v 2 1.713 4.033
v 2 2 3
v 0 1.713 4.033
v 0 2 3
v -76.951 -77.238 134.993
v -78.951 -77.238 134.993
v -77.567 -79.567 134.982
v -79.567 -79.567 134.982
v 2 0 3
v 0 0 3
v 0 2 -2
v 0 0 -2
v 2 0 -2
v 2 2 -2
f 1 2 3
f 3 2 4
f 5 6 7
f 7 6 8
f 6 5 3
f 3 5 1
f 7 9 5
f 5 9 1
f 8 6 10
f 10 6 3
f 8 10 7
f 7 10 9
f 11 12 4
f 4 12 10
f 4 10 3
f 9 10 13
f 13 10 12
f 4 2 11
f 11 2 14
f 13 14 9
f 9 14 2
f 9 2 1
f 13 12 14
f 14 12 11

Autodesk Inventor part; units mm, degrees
ref_plane "YZ Plane" through (0, 0, 0) normal (1, 0, 0) x (0, 1, 0)
sketch "Skizze1" plane through (0, 0, 0) normal (0, 0, 1) x (1, 0, 0)
  line L0 (0, 0) -> (2, 0)
  line L1 (2, 0) -> (2, 2)
  line L2 (2, 2) -> (0, 2)
  line L3 (0, 2) -> (0, 0)
  dimension "d0" = 2
  dimension "d1" = 2
extrude "Extrusion1" add sketch "Skizze1" along normal blind 3
sketch "Skizze2" plane through (0, 0, 3) normal (0, 0, 1) x (1, 0, 0)
  point P0 (0, 0)
ref_plane "Arbeitsebene1" through (0, 0, 3) normal (-0.7071068, 0.7071068, 0) x (0.7071068, 0.7071068, 0)
sketch "Skizze3" plane through (0, 0, 3) normal (-0.7071068, 0.7071068, 0) x (0.7071068, 0.7071068, 0)
  line L0 (0, 0) -> (1.4142, 0) projected
  line L1 (0, 0) -> (-112.5245, -131.9823)
  line L2 (0, 0) -> (173.439, 0) construction
  line L3 (2.8284, 3) -> (2.8284, 0) projected
  line L4 (2.8284, 0) -> (-109.6961, -131.9823)
  line L5 (2.8284, 0) -> (176.2674, 0) construction
  line L6 (-109.6961, -131.9823) -> (-112.5245, -131.9823)
  line L7 (1.4142, 0) -> (2.8284, 0) projected
  line L8 (2.8284, 0) -> (0, 0)
  point P0 (0, 3)
  dimension "d4" = 173.439
  dimension "d5" = 130.45
  dimension "d6" = 173.439
  dimension "d7" = 130.45
ref_plane "Arbeitsebene2" through (0, 0, 3) normal (0, 0.8564105, 0.5162955) x (-0.4587597, -0.4587597, 0.7609724)
sketch "Skizze4" plane through (0, 0, 3) normal (0, 0.8564105, 0.5162955) x (-0.4587597, -0.4587597, 0.7609724)
  line L0 (0, 0) -> (-0.9175, 1.7771) projected
  line L1 (0, 0) -> (-0.9175, 1.7771)
  line L2 (-0.9175, 1.7771) -> (172.5215, 1.7771)
  line L3 (172.5215, 1.7771) -> (173.439, 0)
  line L4 (173.439, 0) -> (0, 0)
  point P0 (-2.2829, -1.1787)
  dimension "d9" = 173.439
extrude "Extrusion2" add sketch "Skizze4" along normal blind 2
sketch "Skizze5" plane through (-77.5668, -79.5668, 134.9823) normal (0.8885604, -0.2368556, 0.3928866) x (0.4587597, 0.4587597, -0.7609724)
  line L0 (172.5215, 0) -> (-0.9175, 0) projected
  line L1 (0.0005, 0) -> (1.3553, 2)
  line L2 (0, 2) -> (173.439, 2) projected
  line L3 (1.3553, 2) -> (0, 2)
  line L4 (0, 0) -> (0, 2) projected
  line L5 (0, 2) -> (0, 0)
  point P0 (174.8044, -1.5489)
sketch "Skizze6" plane through (0, 0, 3) normal (0, -0.8564105, -0.5162955) x (0.8885604, -0.2368556, 0.3928866)
  line L0 (0, 0) -> (0, 173.439) projected
  line L1 (1.7771, 172.5215) -> (0, 173.439)
  point P0 (-1.1787, -2.2829)
sketch "Skizze7" plane through (0, 1.7128, 4.0326) normal (0, 0.8564105, 0.5162955) x (0.8885604, -0.2368556, 0.3928866)
  line L0 (0, 0) -> (0, -173.439) projected
  line L1 (0, -172.1027) -> (1.781, -171.1647)
  point P0 (-1.1787, 2.2829)
sketch "Skizze8" plane through (0, 0, 3) normal (-0.8885604, 0.2368556, -0.3928866) x (-0.4587597, -0.4587597, 0.7609724)
  line L0 (0, 2) -> (173.439, 2) projected
  line L1 (0, 0) -> (173.439, 0) projected
  line L2 (172.1026, 2) -> (173.439, 0)
  point P0 (-2.2829, -1.5489)
chamfer "Fase1" distance 1.1929 distance2 2 1 edges at (-78.5668, -77.854, 136.0149) measured on face at (-25.1889, -24.8095, 48.0267)
ref_plane "Arbeitsebene3" through (2, 0, 3) normal (-1, 0, 0) x (0, 0.8564105, 0.5162955)
sketch "Skizze12" plane through (2, 0, 3) normal (-1, 0, 0) x (0, 0.8564105, 0.5162955)
  line L0 (0, 0) -> (1.7128, 1.0326) projected
  line L1 (0, 0) -> (2, 0)
  line L2 (-1.5489, 2.5692) -> (0, 0) projected
  line L3 (0, 0) -> (1.7128, 1.0326)
  line L4 (2, 0) -> (1.7128, 1.0326)
extrude "Extrusion6" add sketch "Skizze12" along normal blind 2
sketch "Skizze13" plane through (0, 0, 0) normal (0, 0, -1) x (-1, 0, 0)
  line L0 (0, 2) -> (0, 0) projected
  line L1 (-2, 0) -> (-2, 2) projected
  line L2 (0, 0) -> (-2, 0)
  line L3 (-2, 0) -> (-2, 2)
  line L4 (-2, 2) -> (0, 2)
  line L5 (0, 2) -> (0, 0)
extrude "Extrusion7" add sketch "Skizze13" along normal blind 2
properties part number "FOVStick"
